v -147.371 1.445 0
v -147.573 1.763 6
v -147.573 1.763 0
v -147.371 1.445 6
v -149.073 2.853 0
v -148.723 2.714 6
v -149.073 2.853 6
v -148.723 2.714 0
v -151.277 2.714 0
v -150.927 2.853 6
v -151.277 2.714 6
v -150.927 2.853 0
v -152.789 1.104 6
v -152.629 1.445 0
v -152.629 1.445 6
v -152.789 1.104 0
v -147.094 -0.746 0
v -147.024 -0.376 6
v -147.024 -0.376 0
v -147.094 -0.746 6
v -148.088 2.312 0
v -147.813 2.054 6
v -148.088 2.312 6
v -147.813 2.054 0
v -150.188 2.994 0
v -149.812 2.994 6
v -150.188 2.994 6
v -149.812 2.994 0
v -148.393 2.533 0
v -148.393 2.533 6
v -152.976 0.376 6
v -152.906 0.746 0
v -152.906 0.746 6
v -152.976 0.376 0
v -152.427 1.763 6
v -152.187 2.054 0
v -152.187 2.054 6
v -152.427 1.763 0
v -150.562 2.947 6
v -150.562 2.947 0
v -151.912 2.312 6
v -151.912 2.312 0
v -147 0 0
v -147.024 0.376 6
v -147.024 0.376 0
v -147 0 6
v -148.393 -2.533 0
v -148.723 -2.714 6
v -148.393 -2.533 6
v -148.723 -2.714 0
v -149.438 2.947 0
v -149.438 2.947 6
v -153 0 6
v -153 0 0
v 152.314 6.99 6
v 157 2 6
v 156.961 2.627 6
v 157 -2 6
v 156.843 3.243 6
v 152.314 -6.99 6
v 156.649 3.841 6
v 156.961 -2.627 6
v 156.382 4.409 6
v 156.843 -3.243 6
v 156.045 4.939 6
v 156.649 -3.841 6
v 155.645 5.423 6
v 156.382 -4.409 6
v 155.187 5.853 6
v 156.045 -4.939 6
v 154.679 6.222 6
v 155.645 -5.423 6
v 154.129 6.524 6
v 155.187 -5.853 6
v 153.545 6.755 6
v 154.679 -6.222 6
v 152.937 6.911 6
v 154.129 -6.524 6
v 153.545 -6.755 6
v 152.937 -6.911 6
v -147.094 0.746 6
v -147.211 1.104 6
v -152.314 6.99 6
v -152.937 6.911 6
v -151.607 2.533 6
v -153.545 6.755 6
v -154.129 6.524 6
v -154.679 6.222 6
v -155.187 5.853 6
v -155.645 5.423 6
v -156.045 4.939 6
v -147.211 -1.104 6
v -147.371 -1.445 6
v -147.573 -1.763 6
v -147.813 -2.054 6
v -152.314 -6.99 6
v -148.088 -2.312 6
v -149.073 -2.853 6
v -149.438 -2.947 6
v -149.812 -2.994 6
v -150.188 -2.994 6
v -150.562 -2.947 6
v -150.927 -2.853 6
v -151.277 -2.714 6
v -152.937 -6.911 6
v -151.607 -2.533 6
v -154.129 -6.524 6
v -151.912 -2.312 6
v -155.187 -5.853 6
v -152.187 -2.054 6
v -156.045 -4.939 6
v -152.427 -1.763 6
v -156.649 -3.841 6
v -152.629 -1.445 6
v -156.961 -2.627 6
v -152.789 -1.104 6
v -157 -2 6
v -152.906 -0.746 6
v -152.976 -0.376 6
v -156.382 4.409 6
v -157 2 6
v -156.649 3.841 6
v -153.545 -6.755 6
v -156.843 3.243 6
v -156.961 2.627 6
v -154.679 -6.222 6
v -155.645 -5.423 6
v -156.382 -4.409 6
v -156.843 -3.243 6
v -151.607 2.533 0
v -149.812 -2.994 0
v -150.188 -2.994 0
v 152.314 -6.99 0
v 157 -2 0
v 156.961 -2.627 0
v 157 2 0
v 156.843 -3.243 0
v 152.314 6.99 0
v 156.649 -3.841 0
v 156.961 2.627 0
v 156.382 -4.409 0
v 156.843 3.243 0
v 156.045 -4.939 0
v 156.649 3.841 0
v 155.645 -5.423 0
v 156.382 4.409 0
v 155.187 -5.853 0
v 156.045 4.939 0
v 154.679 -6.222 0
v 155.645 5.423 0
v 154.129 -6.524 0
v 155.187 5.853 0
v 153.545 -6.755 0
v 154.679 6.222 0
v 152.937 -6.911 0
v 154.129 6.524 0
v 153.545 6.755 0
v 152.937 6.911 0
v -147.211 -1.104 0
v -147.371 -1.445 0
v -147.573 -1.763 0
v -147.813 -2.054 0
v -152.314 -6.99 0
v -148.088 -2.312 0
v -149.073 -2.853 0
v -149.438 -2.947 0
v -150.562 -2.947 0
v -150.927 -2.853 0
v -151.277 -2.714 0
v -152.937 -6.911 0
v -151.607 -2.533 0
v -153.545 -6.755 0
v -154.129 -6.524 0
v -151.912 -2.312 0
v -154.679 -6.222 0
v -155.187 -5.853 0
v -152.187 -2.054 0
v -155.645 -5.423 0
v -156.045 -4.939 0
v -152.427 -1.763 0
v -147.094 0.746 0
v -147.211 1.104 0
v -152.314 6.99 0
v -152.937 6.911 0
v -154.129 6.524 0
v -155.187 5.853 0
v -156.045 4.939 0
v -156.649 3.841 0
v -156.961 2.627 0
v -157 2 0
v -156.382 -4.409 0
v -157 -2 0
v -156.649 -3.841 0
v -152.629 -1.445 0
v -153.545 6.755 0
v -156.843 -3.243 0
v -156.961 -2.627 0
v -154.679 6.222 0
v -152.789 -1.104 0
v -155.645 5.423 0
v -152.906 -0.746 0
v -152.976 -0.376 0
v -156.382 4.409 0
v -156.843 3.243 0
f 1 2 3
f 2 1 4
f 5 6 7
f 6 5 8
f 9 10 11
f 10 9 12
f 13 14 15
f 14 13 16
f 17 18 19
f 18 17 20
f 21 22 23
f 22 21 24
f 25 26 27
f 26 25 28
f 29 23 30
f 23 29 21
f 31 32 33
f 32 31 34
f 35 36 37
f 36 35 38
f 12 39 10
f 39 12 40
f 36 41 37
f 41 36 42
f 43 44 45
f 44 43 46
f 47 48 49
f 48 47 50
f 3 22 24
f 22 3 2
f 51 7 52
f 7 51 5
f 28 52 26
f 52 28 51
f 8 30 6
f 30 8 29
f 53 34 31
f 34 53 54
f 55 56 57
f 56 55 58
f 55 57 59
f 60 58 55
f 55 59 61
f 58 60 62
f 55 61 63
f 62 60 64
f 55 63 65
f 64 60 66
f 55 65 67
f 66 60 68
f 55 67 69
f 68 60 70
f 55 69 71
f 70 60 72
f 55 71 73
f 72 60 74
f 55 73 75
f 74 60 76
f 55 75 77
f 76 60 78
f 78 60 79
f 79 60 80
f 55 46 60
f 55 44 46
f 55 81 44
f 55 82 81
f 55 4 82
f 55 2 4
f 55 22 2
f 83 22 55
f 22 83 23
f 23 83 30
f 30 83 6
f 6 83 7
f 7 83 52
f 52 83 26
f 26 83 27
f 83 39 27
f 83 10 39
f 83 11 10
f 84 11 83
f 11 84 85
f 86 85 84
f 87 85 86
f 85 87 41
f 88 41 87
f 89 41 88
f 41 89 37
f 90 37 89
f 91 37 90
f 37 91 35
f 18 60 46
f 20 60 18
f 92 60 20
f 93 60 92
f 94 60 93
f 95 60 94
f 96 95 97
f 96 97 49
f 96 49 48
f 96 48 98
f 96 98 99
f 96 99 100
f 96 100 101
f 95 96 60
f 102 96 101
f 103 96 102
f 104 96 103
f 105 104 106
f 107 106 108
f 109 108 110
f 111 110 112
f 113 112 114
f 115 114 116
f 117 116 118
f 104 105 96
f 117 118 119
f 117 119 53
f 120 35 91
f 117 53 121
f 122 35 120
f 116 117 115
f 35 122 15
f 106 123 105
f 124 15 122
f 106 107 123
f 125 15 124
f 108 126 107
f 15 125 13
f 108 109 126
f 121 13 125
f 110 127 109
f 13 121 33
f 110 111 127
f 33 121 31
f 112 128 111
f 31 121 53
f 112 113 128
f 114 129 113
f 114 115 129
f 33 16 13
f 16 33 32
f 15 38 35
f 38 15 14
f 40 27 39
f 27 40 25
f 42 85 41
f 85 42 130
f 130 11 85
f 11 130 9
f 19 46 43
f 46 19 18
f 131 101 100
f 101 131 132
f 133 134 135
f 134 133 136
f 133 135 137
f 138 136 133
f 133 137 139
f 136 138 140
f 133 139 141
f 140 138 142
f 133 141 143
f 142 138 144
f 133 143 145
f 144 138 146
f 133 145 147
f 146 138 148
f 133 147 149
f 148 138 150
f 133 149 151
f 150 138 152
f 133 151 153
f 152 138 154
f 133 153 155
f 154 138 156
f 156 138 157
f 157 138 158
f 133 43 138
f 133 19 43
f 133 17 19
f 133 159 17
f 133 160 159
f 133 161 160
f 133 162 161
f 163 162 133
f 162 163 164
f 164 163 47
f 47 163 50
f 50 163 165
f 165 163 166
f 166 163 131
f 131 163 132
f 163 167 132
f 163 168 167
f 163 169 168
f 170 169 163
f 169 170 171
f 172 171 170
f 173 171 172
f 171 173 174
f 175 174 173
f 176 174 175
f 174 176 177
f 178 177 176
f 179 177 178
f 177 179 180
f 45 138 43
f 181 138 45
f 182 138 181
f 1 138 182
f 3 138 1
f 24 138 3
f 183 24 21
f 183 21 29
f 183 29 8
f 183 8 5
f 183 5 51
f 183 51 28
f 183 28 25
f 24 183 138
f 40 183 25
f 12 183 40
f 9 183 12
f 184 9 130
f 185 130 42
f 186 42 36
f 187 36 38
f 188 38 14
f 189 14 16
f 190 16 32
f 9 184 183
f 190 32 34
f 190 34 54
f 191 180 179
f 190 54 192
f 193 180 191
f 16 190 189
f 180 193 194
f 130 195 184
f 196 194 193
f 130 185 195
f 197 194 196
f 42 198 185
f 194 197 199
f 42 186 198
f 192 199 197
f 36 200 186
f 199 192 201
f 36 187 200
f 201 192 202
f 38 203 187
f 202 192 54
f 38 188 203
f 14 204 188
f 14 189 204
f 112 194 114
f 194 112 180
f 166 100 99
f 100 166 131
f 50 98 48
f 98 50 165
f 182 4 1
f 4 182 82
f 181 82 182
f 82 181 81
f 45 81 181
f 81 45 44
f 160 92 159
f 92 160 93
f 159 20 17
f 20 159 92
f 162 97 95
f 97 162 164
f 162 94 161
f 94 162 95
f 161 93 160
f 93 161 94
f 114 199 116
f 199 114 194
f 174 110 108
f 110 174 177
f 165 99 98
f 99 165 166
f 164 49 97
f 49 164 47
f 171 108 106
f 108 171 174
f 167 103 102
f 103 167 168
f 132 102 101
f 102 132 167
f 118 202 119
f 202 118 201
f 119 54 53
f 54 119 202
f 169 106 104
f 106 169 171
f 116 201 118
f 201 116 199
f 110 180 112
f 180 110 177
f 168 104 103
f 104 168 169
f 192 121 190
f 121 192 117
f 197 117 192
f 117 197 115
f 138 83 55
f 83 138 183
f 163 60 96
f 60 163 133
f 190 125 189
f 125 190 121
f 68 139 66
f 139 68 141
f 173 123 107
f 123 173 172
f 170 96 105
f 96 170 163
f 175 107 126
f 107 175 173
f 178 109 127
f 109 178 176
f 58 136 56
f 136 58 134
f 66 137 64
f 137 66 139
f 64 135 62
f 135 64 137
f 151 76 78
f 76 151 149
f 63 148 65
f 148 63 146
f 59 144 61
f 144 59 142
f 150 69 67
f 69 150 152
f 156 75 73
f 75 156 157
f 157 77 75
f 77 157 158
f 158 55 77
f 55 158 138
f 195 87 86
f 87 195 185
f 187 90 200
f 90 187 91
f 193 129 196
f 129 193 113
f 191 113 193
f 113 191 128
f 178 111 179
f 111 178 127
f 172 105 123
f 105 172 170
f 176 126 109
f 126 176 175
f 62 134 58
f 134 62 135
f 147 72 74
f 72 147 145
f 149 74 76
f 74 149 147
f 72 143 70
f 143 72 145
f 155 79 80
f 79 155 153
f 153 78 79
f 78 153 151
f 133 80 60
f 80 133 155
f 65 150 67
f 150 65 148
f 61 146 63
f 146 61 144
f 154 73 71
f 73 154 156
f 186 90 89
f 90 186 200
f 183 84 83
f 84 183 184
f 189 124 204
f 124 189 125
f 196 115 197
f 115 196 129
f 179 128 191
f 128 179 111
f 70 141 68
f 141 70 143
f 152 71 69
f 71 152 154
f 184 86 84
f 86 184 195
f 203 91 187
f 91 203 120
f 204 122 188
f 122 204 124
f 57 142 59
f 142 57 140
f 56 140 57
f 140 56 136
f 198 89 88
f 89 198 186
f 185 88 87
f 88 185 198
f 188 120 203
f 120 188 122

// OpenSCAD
$fn = 50;


difference() {
	union() {
		hull() {
			translate(v = [-152.0000000000, 2.0000000000, 0]) {
				cylinder(h = 6, r = 5);
			}
			translate(v = [152.0000000000, 2.0000000000, 0]) {
				cylinder(h = 6, r = 5);
			}
			translate(v = [-152.0000000000, -2.0000000000, 0]) {
				cylinder(h = 6, r = 5);
			}
			translate(v = [152.0000000000, -2.0000000000, 0]) {
				cylinder(h = 6, r = 5);
			}
		}
	}
	union() {
		translate(v = [-150.0000000000, 0.0000000000, 0]) {
			cylinder(h = 6, r = 3.0000000000);
		}
		translate(v = [-150.0000000000, 0.0000000000, 0]) {
			cylinder(h = 6, r = 1.5000000000);
		}
		translate(v = [-150.0000000000, 0.0000000000, 0]) {
			cylinder(h = 6, r = 1.5000000000);
		}
		translate(v = [-150.0000000000, 0.0000000000, 0]) {
			cylinder(h = 6, r = 1.5000000000);
		}
	}
}
